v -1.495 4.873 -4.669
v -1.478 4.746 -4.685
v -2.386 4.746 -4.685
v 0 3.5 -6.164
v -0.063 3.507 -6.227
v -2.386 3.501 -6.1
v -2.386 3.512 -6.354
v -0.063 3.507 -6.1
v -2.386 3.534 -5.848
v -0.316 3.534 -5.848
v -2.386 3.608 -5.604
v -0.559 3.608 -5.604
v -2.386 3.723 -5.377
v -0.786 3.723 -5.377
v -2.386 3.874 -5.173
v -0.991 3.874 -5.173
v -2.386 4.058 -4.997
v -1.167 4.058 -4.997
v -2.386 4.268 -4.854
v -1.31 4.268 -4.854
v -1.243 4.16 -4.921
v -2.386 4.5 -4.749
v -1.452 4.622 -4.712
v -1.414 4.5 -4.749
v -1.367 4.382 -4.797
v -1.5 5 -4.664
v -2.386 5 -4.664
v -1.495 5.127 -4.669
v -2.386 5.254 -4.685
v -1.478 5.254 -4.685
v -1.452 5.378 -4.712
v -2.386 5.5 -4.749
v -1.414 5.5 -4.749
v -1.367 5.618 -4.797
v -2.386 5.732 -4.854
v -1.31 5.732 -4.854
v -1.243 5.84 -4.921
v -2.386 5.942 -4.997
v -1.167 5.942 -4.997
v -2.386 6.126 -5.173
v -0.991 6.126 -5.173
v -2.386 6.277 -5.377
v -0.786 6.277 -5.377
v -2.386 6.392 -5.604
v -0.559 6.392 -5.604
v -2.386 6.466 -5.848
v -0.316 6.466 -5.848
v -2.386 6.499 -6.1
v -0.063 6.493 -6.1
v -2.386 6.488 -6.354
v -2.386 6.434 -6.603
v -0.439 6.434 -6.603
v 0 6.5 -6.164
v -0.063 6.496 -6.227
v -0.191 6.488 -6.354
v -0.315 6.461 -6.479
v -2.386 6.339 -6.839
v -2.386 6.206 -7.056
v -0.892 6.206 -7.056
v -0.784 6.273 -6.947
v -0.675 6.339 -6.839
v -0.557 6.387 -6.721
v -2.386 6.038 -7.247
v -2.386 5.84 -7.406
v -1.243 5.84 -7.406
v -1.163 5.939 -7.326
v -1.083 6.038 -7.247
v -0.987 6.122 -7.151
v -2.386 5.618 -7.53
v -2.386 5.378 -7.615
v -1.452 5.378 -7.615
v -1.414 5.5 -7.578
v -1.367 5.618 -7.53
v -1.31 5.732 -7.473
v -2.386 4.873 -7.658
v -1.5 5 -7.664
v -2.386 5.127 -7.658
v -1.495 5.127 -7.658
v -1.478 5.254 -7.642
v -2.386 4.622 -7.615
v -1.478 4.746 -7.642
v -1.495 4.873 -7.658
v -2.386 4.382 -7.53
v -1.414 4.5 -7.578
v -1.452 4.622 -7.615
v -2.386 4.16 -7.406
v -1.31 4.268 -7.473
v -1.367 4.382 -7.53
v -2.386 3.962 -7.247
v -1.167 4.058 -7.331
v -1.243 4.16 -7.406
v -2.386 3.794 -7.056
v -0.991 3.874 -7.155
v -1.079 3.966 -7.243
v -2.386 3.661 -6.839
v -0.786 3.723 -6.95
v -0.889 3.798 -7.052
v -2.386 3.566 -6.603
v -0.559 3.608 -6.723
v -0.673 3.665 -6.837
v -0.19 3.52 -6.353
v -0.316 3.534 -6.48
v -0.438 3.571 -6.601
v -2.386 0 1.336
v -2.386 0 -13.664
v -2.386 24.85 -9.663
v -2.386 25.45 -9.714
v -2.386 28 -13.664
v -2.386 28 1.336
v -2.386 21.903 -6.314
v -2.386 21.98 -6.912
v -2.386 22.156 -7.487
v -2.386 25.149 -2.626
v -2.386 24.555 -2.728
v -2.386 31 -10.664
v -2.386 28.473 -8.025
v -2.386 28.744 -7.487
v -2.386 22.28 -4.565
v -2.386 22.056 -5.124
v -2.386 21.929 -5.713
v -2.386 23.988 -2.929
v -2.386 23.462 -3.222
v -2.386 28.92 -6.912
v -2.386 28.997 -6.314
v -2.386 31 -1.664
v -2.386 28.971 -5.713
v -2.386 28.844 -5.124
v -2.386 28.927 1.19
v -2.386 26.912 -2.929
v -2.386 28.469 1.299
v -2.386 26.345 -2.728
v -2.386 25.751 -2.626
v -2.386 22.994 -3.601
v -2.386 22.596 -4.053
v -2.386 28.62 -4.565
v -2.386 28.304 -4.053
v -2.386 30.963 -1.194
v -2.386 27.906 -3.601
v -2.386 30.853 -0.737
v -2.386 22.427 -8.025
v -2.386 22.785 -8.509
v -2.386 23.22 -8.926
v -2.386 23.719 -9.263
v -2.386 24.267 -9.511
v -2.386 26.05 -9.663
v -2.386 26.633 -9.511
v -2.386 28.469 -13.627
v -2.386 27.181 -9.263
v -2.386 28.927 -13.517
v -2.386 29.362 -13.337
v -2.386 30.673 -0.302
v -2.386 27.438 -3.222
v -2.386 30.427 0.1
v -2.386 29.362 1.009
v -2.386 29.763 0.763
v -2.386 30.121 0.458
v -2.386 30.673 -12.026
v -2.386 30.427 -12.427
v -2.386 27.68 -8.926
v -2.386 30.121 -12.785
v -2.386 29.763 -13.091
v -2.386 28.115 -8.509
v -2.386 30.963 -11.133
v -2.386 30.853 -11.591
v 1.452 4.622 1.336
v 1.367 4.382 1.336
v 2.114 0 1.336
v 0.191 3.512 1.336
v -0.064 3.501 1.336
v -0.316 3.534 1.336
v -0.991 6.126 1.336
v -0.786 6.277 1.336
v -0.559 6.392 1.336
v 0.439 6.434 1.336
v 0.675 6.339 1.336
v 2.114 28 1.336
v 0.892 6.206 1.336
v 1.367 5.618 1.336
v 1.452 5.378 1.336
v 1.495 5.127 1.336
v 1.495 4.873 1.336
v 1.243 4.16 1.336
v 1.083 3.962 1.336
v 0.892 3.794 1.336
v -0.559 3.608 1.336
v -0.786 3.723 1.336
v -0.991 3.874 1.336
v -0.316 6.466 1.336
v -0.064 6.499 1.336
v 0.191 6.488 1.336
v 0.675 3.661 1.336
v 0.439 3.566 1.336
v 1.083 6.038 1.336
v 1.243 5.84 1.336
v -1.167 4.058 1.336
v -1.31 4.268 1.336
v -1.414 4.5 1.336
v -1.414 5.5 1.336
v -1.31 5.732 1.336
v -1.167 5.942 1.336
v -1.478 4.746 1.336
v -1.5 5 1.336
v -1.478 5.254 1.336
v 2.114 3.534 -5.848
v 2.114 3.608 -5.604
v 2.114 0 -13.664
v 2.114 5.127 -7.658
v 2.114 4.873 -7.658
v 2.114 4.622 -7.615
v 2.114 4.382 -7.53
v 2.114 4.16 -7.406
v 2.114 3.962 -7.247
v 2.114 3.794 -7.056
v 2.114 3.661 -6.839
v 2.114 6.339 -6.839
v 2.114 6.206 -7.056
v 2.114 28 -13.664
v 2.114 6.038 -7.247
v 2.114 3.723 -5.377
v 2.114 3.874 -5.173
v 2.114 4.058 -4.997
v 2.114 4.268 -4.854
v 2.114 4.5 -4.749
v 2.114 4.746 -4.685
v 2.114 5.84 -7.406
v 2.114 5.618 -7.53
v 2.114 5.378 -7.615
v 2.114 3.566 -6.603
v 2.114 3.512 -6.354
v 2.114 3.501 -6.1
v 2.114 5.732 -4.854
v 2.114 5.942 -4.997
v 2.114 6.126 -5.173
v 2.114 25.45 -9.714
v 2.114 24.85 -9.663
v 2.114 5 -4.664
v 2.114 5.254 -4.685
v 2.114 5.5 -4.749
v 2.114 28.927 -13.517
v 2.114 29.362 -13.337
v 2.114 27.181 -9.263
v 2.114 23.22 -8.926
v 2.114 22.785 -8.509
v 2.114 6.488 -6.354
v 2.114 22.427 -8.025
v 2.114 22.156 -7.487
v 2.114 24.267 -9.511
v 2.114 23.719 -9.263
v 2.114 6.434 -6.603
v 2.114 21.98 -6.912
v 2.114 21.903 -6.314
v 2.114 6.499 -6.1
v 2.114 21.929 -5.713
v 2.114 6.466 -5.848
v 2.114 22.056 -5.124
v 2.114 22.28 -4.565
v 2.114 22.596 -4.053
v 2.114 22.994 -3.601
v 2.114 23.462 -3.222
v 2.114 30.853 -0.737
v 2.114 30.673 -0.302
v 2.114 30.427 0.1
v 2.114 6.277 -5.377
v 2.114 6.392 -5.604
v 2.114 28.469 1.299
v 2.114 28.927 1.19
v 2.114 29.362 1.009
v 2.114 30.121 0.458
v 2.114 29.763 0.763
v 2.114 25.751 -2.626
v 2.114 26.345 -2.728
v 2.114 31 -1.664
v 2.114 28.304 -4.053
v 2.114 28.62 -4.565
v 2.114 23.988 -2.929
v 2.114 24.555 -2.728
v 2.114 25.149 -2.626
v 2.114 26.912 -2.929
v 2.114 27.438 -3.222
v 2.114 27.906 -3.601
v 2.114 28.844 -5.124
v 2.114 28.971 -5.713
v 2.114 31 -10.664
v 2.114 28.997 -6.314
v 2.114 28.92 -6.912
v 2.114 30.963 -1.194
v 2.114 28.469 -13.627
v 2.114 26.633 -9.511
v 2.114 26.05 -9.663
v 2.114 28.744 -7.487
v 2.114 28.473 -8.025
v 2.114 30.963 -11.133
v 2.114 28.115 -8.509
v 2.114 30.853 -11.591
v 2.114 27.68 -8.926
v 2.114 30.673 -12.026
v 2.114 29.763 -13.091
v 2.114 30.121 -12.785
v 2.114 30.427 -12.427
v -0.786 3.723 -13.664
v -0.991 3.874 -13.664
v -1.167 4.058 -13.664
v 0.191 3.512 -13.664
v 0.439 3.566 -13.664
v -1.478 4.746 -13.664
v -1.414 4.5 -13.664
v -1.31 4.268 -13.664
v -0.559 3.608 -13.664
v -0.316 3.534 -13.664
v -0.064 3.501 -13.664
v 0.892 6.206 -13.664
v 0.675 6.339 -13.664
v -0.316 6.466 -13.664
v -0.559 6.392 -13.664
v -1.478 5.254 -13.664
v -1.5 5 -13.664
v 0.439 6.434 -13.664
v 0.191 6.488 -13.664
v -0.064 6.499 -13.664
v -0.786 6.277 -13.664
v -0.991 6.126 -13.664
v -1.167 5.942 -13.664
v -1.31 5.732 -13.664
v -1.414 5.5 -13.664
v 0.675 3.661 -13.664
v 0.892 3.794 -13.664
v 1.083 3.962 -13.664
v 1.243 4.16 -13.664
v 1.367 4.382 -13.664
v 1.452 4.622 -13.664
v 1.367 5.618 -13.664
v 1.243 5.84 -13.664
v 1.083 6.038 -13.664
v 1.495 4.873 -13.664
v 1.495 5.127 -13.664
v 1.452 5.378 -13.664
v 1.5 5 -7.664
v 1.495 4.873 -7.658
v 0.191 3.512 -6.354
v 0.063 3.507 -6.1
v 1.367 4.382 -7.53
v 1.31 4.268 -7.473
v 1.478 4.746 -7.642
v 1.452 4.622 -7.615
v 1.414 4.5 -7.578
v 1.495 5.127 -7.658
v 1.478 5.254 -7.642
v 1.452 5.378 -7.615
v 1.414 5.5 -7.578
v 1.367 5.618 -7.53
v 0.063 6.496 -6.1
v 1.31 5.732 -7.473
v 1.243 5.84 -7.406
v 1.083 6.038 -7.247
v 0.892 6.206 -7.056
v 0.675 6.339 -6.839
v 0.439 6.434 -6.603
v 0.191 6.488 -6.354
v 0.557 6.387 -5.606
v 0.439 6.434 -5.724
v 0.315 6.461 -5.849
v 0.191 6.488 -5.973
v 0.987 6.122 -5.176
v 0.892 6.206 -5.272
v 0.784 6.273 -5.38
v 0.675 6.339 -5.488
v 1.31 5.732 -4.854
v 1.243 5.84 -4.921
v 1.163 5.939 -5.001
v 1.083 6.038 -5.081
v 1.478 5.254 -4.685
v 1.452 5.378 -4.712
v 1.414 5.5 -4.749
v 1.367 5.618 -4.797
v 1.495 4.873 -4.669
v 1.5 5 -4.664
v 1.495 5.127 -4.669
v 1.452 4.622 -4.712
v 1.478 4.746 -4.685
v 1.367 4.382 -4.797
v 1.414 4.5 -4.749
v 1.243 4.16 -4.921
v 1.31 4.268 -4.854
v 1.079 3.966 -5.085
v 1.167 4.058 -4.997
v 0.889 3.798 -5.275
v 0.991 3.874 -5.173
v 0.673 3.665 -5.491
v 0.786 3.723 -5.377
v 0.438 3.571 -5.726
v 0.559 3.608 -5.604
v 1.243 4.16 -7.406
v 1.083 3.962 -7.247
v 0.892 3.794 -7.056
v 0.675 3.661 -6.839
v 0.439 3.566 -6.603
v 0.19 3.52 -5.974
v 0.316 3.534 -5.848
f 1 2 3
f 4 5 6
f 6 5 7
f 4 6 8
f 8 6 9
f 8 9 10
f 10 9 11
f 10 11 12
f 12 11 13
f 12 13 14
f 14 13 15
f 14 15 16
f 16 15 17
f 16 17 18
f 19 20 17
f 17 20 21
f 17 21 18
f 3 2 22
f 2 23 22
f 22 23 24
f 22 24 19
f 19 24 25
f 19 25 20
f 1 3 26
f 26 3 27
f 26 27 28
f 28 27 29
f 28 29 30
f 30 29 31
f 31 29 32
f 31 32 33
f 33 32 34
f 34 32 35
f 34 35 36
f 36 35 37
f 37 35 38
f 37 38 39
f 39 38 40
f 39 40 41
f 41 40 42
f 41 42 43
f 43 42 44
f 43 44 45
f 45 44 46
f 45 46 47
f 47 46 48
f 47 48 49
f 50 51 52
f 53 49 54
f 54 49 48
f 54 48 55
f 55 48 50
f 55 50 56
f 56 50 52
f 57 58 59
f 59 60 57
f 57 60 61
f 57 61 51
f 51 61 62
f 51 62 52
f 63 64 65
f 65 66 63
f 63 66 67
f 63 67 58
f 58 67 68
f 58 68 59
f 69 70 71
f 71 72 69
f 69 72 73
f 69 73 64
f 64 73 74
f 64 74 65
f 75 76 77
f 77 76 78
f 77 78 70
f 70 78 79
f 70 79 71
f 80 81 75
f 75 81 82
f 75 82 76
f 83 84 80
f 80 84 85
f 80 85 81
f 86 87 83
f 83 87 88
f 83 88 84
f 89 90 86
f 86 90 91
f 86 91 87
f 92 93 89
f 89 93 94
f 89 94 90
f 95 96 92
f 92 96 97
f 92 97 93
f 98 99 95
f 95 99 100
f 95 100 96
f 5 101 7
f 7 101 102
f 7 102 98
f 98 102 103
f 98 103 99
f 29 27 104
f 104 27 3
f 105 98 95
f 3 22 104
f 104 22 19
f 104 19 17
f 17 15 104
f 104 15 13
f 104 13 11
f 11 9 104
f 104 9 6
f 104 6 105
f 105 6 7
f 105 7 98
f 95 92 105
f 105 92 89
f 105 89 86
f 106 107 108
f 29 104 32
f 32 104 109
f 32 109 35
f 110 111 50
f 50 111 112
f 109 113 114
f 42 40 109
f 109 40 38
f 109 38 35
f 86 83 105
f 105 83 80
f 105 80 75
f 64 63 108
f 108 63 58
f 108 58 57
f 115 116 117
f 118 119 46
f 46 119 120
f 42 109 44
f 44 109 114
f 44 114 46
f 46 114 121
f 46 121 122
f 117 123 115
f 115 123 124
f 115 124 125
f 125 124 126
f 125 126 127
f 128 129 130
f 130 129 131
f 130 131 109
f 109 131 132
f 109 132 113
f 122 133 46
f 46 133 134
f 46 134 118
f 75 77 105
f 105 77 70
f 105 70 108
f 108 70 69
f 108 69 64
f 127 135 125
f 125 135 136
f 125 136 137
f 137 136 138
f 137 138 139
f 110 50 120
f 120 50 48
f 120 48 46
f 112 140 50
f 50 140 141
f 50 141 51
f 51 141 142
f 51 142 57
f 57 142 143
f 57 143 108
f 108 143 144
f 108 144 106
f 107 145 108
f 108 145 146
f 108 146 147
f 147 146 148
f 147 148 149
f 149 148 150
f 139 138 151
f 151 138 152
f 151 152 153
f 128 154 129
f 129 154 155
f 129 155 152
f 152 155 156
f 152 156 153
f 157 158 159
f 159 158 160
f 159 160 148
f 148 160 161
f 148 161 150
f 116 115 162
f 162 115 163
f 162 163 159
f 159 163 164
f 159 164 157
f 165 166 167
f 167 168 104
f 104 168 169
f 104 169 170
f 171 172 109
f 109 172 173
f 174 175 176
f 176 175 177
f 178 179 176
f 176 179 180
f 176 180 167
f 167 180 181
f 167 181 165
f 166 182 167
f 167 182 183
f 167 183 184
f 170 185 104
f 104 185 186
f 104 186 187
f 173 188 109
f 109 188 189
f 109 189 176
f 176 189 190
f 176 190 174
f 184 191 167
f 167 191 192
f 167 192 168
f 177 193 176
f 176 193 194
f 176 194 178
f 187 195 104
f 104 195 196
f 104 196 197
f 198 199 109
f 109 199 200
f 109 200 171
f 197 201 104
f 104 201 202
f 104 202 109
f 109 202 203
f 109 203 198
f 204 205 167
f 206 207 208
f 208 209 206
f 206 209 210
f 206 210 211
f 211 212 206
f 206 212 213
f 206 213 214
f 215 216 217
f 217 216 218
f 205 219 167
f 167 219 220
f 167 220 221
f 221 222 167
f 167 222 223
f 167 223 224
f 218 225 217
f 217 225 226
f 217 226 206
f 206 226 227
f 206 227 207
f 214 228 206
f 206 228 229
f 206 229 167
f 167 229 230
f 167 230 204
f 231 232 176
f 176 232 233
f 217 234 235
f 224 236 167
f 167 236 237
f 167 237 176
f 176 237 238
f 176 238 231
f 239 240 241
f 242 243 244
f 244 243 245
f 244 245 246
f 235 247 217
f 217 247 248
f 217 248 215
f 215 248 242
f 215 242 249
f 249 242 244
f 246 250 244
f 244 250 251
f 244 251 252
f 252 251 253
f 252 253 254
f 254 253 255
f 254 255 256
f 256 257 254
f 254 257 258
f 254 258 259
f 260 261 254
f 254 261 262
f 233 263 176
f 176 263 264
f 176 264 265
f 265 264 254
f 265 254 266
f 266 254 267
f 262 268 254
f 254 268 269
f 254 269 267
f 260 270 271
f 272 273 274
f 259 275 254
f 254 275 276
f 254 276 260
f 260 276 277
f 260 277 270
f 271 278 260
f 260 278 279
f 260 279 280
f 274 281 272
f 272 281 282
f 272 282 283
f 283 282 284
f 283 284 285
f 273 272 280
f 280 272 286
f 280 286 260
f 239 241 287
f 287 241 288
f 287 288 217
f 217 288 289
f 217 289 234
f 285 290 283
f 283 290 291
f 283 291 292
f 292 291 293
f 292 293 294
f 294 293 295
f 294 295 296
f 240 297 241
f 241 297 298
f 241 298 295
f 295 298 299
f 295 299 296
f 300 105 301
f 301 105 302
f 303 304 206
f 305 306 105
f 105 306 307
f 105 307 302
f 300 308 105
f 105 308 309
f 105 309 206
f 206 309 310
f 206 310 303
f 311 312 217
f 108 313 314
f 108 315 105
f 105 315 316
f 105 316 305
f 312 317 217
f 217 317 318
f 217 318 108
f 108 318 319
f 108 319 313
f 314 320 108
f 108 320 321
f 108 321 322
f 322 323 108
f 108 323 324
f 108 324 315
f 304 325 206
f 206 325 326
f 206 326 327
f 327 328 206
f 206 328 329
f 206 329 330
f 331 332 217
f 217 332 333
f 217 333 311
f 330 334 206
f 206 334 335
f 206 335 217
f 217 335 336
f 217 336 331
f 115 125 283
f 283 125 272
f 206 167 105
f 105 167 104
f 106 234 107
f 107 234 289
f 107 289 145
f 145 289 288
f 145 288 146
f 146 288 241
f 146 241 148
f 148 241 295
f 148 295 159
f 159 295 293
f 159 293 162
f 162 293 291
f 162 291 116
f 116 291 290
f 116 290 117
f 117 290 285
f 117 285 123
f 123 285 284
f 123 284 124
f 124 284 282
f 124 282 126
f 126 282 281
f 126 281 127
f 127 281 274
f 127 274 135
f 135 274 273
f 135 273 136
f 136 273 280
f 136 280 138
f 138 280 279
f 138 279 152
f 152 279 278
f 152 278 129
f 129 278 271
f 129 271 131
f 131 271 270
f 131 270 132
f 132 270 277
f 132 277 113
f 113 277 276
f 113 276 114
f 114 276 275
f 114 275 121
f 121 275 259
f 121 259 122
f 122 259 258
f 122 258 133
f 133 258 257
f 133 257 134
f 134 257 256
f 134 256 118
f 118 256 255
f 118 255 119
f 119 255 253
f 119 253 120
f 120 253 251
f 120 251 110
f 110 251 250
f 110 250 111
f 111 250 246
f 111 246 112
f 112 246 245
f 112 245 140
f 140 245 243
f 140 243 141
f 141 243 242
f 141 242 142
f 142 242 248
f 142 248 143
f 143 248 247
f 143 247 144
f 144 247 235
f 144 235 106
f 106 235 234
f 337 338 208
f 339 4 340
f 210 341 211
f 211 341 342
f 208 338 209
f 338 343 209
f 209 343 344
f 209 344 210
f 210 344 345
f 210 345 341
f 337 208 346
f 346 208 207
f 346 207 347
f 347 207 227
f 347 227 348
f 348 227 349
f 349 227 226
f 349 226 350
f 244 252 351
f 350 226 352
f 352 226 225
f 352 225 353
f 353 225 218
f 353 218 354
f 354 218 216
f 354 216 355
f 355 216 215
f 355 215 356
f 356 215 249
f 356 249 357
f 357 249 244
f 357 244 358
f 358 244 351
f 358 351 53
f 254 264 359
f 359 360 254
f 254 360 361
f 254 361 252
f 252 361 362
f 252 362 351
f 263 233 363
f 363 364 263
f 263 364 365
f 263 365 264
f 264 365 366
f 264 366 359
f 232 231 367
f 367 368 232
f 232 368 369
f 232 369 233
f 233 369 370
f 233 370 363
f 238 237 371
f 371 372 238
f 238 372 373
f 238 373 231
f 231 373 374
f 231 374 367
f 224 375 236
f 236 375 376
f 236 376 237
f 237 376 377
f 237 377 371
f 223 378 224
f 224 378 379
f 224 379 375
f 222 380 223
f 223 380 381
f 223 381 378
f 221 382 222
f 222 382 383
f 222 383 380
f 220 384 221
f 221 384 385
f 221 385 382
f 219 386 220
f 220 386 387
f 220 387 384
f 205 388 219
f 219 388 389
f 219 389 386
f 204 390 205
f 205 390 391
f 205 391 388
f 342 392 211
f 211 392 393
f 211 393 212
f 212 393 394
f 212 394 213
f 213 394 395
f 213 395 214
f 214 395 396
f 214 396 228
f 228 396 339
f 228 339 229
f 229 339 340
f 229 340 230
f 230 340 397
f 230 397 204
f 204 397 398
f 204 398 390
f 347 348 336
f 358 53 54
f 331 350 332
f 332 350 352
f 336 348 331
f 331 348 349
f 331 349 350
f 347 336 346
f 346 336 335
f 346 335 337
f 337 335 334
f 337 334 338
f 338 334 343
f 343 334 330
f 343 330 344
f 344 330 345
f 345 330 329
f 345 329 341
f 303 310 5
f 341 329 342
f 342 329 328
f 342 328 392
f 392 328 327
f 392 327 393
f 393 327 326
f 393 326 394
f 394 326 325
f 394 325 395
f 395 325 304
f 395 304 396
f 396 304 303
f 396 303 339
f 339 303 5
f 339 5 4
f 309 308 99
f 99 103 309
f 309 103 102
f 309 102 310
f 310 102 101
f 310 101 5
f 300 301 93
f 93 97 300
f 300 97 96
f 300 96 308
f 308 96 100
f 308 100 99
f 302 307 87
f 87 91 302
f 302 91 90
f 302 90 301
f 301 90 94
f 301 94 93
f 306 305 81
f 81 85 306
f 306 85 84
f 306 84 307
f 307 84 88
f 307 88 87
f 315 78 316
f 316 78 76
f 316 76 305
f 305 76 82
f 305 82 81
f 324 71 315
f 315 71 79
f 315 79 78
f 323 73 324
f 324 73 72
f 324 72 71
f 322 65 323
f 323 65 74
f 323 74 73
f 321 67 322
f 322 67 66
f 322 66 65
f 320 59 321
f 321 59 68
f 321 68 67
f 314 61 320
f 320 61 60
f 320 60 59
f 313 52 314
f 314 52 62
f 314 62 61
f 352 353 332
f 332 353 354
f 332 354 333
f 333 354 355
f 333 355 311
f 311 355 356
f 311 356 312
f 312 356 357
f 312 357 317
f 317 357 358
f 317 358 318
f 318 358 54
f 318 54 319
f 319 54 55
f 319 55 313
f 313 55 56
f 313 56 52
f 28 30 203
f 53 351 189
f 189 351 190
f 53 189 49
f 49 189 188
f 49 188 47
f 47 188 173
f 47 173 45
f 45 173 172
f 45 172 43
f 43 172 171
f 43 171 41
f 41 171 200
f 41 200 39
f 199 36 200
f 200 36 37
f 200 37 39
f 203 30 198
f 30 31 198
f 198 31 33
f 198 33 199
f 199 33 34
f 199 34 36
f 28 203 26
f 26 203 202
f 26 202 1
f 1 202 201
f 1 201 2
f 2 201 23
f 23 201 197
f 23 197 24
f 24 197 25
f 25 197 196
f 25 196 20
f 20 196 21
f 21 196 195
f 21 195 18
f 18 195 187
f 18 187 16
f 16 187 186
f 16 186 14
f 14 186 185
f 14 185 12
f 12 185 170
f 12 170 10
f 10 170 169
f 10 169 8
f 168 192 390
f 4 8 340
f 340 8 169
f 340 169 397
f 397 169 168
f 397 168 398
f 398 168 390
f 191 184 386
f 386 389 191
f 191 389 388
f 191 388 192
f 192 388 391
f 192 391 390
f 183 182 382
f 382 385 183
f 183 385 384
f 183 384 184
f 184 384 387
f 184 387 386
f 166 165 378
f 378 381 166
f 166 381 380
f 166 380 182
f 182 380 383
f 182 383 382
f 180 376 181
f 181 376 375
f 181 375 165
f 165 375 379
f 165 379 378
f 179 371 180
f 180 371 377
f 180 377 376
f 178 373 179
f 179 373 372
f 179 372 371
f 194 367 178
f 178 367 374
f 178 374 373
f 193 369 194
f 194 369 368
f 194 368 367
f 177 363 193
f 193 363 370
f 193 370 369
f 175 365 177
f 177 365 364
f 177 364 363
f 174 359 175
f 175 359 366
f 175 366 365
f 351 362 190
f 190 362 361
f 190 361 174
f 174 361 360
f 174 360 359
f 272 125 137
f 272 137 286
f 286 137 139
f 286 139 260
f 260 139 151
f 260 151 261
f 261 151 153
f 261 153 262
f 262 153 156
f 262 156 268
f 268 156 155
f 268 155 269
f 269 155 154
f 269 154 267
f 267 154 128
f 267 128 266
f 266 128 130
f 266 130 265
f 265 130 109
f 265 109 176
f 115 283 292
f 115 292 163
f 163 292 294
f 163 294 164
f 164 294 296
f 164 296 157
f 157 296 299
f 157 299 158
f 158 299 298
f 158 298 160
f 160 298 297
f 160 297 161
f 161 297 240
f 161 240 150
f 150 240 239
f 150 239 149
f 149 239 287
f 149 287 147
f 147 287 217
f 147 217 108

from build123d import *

# Parameters (mm, degrees)
SKETCH1_W           = 4.5
SKETCH1_H           = 15
BOSS_EXTRUDE1_DEPTH = 31
SKETCH2_R           = 3.55
CUT_EXTRUDE1_DEPTH  = 20
SKETCH3_R           = 1.5
CUT_EXTRUDE2_DEPTH  = 20
SKETCH4_R           = 1.5
CUT_EXTRUDE3_DEPTH  = 20
FILLET1_R           = 3
FILLET2_R           = 3


with BuildPart() as part:
    # Sketch1 → Boss-Extrude1 (new body)
    with BuildSketch(Plane(origin=(0, 0, 0), x_dir=(1, 0, 0), z_dir=(0, 1, 0))):
        with Locations((-0.136363636, 6.163636364)):
            Rectangle(SKETCH1_W, SKETCH1_H)
    extrude(amount=BOSS_EXTRUDE1_DEPTH)

    # Sketch2 → Cut-Extrude1 (cut)
    with BuildSketch(Plane(origin=(2.113636364, 0, 0), x_dir=(0, 0, -1), z_dir=(1, 0, 0))):
        with Locations((6.163636364, 25.45)):
            Circle(SKETCH2_R)
    extrude(amount=-CUT_EXTRUDE1_DEPTH, mode=Mode.SUBTRACT)

    # Sketch3 → Cut-Extrude2 (cut)
    with BuildSketch(Plane.ZY.offset(2.386363636)):
        with Locations((-6.163636364, 5)):
            Circle(SKETCH3_R)
    extrude(amount=-CUT_EXTRUDE2_DEPTH, mode=Mode.SUBTRACT)

    # Sketch4 → Cut-Extrude3 (cut)
    with BuildSketch(Plane(origin=(0, 0, -13.663636364), x_dir=(-1, 0, 0), z_dir=(0, 0, -1))):
        with Locations((0, 5)):
            Circle(SKETCH4_R)
    extrude(amount=-CUT_EXTRUDE3_DEPTH, mode=Mode.SUBTRACT)

    # Fillet1
    fillet1_edges = [part.edges().sort_by_distance(p)[0] for p in [
        (-0.136363636, 31, 1.336363636),
    ]]
    fillet(fillet1_edges, radius=FILLET1_R)

    # Fillet2
    fillet2_edges = [part.edges().sort_by_distance(p)[0] for p in [
        (-0.136363636, 31, -13.663636364),
    ]]
    fillet(fillet2_edges, radius=FILLET2_R)


solid = part.part
